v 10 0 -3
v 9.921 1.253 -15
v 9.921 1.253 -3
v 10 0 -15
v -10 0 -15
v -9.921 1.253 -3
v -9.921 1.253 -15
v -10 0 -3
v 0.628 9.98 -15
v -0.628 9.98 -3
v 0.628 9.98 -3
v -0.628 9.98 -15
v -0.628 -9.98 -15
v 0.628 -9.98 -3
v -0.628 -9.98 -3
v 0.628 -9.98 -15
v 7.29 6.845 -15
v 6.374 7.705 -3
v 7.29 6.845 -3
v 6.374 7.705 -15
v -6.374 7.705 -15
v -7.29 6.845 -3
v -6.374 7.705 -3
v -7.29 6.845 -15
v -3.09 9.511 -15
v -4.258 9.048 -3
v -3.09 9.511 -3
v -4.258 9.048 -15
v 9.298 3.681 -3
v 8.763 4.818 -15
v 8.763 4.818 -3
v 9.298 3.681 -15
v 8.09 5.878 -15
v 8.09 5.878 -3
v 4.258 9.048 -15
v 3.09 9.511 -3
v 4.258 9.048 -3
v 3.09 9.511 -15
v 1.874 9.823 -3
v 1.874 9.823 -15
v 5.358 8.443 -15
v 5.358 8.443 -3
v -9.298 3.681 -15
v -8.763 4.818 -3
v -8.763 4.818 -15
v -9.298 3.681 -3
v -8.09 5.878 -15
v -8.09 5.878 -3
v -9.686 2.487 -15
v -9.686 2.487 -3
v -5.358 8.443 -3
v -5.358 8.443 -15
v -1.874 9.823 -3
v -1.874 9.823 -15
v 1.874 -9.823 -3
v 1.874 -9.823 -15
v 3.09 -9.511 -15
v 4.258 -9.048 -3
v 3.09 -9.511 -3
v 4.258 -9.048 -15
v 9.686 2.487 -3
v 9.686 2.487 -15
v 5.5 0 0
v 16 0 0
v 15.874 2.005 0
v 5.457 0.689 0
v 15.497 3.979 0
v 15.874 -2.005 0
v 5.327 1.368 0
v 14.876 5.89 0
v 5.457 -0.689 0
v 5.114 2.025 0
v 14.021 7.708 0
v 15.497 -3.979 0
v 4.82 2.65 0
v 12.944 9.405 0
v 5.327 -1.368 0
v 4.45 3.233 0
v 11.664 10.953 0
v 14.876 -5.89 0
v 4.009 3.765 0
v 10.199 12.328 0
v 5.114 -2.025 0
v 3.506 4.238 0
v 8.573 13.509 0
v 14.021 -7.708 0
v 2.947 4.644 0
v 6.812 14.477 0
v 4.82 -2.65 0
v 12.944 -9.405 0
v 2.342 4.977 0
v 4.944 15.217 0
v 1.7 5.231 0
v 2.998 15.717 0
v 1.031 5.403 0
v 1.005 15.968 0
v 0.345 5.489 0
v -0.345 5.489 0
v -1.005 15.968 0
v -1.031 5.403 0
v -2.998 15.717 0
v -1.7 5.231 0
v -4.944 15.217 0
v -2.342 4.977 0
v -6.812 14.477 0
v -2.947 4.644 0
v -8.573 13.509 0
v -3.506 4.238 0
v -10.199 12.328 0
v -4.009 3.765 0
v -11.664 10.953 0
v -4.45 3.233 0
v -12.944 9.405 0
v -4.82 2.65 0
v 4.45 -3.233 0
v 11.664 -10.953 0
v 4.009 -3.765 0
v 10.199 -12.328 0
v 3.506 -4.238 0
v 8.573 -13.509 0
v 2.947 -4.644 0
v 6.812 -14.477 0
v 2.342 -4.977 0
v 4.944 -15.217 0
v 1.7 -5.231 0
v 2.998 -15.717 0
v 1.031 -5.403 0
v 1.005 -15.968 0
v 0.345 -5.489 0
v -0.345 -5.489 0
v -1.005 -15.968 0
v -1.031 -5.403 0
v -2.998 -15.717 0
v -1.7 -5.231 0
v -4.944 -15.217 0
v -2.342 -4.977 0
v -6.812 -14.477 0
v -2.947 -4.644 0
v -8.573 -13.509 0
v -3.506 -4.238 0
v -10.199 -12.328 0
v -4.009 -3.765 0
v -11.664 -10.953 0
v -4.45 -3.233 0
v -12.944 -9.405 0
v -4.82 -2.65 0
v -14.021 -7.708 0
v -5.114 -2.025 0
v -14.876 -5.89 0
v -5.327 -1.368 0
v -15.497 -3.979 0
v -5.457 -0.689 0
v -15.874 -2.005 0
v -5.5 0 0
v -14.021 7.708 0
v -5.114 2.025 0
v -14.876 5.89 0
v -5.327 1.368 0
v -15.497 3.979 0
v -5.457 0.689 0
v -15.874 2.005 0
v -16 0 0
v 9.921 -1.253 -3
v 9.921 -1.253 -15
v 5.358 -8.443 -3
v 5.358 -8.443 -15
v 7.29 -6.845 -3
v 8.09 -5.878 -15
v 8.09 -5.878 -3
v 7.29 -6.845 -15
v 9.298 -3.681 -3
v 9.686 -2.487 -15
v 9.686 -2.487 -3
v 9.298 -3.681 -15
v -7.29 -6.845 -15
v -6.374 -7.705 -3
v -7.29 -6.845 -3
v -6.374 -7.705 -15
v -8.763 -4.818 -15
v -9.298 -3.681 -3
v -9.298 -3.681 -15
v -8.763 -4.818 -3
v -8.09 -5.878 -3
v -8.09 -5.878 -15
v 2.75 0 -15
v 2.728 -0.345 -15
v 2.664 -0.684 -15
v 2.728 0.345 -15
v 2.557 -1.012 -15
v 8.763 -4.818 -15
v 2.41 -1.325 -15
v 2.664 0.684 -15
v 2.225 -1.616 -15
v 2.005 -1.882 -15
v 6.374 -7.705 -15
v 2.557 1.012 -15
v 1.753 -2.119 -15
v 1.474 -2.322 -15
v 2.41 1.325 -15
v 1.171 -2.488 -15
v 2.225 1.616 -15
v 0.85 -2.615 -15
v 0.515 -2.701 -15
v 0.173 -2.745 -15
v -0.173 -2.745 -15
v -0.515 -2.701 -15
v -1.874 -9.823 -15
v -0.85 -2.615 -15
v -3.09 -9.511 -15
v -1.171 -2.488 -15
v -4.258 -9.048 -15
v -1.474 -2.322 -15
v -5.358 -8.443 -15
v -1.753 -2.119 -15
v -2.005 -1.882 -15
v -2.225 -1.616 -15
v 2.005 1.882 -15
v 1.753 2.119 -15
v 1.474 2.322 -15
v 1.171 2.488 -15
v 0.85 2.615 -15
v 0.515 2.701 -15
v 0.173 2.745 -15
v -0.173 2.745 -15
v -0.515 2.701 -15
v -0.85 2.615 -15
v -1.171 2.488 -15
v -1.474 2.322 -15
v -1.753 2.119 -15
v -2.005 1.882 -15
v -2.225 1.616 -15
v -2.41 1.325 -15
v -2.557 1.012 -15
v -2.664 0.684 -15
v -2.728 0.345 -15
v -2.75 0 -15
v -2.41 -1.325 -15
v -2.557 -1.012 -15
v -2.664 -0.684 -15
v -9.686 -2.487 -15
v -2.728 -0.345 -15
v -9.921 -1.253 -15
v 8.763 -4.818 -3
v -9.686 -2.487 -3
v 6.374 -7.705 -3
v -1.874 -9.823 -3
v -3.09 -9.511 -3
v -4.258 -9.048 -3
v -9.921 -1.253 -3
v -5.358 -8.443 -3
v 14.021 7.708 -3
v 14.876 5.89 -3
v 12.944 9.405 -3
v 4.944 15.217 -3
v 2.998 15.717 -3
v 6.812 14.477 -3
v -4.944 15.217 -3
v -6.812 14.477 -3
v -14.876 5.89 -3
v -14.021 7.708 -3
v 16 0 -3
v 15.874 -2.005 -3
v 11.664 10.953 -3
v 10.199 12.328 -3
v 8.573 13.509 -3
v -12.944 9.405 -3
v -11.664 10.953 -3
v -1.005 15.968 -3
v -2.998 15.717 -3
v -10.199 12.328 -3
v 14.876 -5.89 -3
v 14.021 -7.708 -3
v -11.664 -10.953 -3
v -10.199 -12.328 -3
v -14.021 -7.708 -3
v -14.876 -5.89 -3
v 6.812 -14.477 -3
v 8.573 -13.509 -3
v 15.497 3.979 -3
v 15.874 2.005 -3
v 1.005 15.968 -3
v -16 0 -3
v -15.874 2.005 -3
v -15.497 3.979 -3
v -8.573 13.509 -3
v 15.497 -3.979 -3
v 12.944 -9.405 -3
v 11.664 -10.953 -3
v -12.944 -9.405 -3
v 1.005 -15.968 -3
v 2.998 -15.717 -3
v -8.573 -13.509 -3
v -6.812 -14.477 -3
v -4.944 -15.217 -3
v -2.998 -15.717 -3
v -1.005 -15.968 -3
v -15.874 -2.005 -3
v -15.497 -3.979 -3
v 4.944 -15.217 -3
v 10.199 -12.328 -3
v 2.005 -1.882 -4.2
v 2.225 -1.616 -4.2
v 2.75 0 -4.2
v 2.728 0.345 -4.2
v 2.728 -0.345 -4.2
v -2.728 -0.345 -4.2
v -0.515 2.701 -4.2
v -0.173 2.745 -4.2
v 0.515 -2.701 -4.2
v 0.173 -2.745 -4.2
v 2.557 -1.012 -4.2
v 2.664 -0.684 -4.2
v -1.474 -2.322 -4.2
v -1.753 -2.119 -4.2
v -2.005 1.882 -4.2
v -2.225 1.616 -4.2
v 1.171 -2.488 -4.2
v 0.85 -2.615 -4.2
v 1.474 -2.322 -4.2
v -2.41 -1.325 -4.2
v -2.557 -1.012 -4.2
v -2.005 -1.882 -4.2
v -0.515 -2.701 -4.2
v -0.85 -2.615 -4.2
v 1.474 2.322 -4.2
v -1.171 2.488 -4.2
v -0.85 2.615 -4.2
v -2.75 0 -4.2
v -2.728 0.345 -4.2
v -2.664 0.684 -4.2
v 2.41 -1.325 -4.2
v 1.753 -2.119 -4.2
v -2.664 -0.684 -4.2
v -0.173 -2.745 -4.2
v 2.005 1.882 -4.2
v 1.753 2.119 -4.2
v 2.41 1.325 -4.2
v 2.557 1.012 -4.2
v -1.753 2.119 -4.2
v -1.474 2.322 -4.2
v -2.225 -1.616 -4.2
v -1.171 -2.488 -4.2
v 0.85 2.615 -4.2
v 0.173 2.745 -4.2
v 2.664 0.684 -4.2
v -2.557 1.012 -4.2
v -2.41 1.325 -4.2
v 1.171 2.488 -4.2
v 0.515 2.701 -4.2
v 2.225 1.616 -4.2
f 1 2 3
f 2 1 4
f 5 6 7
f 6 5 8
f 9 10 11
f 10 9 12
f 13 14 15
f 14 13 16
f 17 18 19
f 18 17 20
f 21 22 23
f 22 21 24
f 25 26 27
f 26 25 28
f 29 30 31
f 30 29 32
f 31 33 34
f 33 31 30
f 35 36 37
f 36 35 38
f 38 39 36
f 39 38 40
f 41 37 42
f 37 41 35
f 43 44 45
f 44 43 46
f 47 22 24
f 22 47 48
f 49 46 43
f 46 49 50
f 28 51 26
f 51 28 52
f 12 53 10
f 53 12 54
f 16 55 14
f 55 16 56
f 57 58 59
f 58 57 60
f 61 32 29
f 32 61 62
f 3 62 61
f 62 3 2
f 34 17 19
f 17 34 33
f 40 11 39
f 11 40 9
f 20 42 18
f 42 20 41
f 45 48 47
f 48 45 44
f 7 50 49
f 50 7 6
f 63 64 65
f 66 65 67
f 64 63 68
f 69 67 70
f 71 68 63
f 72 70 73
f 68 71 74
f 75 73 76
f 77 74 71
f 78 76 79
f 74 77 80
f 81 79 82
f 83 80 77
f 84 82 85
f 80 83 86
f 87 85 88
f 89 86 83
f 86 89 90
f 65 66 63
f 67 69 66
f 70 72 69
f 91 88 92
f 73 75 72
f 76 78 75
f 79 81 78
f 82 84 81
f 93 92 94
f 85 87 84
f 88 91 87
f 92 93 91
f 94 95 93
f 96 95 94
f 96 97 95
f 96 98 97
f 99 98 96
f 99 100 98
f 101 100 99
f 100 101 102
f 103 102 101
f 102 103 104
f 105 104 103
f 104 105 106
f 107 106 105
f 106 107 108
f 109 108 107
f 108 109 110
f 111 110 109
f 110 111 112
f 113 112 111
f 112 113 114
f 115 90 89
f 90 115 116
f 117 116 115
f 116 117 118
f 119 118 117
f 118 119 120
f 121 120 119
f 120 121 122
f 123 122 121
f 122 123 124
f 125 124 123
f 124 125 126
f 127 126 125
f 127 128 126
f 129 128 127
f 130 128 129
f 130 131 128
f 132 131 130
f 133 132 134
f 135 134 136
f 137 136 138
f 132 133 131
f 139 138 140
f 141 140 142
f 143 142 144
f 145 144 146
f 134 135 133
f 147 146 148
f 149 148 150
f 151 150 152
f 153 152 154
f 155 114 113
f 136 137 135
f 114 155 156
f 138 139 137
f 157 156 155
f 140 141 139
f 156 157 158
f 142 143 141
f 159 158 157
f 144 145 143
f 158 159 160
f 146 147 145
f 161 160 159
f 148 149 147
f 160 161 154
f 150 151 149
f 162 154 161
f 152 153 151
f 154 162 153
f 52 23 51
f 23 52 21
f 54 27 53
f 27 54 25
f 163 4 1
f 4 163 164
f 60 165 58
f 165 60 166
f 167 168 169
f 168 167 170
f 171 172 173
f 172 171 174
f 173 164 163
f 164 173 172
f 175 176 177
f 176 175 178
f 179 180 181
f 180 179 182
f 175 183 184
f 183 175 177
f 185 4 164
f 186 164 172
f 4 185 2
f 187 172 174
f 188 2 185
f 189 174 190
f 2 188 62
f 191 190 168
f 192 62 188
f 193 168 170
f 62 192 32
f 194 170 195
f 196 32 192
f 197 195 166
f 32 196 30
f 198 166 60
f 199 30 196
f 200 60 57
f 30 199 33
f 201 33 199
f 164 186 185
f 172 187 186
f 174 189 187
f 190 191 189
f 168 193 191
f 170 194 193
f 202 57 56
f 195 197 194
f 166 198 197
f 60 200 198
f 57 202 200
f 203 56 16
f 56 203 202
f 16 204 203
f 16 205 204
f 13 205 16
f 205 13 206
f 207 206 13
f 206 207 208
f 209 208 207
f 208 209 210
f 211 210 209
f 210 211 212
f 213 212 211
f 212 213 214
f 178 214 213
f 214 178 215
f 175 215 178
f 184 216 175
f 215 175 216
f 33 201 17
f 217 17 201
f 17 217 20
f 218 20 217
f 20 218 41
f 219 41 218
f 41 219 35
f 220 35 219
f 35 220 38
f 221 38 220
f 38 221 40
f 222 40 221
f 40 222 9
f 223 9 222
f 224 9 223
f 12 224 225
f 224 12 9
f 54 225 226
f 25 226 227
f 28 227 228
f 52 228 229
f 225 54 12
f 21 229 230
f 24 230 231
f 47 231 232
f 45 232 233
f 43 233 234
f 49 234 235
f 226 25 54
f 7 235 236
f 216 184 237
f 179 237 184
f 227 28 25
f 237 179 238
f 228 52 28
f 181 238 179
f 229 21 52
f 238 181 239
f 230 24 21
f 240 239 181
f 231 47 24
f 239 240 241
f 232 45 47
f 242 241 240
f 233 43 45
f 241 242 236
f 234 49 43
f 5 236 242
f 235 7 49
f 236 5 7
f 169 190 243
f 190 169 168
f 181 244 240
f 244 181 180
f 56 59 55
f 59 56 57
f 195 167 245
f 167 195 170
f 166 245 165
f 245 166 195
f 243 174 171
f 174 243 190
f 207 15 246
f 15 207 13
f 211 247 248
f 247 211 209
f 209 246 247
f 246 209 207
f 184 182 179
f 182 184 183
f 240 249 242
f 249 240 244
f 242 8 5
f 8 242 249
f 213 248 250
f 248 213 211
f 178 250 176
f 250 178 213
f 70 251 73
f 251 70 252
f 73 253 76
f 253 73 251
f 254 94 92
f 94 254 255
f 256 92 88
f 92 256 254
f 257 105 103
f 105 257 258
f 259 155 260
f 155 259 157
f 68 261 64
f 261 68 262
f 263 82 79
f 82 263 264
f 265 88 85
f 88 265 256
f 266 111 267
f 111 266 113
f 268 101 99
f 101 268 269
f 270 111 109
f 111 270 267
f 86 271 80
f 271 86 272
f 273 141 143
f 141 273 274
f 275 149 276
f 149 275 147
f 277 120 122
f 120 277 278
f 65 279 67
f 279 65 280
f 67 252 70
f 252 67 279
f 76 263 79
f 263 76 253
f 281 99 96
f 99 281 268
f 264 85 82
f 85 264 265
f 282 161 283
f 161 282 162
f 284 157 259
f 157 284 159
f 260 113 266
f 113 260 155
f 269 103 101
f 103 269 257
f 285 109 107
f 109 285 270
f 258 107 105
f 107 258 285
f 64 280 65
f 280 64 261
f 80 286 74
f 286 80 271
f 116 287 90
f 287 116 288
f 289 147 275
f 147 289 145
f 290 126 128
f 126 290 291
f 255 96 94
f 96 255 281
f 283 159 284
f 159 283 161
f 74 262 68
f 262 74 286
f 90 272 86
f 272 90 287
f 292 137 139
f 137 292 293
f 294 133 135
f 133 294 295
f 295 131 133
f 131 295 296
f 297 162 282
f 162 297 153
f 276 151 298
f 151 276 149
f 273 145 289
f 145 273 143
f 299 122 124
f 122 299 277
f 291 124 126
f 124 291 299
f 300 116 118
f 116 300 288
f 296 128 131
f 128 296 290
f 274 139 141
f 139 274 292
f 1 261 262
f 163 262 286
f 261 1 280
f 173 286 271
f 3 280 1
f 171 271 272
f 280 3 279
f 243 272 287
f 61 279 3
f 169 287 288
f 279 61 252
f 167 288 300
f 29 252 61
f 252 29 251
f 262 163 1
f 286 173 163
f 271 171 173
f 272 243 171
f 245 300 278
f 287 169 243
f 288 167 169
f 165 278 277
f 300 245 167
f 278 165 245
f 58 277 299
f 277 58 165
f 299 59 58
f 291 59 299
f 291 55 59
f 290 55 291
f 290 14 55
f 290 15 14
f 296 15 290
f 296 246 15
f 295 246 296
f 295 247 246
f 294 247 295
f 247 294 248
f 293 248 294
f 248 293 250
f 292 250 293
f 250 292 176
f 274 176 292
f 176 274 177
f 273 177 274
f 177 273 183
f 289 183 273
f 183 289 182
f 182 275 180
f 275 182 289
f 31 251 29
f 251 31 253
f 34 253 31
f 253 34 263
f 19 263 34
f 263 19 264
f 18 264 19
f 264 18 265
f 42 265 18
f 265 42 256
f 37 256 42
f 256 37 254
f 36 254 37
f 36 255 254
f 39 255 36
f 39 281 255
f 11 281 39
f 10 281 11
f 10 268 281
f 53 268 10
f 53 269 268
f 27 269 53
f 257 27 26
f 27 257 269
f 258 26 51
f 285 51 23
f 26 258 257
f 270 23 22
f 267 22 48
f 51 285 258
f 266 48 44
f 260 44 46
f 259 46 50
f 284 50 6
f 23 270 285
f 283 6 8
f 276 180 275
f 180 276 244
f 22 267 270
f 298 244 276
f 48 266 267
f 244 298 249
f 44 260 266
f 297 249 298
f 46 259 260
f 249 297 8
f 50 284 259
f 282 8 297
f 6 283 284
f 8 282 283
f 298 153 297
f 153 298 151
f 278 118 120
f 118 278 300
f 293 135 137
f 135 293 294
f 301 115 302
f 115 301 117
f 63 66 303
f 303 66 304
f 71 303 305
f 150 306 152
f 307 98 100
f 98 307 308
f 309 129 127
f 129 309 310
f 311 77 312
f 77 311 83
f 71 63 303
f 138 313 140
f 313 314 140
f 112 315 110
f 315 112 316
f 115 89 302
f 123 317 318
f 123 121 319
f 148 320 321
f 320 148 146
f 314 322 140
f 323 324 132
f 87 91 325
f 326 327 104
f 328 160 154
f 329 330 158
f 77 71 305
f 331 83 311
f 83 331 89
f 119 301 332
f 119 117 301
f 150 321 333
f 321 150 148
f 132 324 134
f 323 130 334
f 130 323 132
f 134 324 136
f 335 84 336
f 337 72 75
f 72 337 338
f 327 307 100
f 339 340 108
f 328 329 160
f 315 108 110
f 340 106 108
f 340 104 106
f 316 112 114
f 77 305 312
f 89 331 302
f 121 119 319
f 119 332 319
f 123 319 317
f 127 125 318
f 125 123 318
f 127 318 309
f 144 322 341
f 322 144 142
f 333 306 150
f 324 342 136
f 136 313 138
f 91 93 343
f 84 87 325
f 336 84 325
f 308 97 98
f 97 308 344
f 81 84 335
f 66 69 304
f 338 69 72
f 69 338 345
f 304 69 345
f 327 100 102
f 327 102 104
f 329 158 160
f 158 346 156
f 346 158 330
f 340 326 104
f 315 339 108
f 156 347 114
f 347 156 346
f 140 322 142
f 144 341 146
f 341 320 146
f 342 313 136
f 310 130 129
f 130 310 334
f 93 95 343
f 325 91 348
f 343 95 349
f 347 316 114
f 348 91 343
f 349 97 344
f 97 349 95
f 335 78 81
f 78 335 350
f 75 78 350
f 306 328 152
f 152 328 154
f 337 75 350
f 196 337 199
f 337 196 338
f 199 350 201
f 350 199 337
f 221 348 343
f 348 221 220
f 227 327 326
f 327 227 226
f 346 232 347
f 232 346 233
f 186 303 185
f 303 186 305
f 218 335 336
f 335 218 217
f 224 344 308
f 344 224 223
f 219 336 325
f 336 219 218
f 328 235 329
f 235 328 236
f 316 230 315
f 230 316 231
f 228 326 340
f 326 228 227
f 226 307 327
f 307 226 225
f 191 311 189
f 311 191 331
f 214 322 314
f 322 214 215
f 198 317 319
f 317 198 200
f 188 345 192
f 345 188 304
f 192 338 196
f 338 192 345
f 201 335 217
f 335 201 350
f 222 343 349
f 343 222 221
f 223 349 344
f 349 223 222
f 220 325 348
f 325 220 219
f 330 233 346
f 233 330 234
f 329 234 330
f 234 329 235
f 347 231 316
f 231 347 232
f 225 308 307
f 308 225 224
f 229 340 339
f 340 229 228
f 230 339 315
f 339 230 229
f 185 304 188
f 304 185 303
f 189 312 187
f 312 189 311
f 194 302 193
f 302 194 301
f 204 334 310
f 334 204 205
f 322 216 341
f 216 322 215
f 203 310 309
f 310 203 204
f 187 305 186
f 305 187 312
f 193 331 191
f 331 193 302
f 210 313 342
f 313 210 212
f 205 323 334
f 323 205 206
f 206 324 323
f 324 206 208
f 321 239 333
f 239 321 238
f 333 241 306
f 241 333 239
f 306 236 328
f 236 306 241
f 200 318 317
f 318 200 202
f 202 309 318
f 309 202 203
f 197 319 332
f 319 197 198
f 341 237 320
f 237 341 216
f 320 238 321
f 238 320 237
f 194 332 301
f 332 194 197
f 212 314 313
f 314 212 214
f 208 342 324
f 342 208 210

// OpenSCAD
$fn = 50;


difference() {
	union() {
		translate(v = [0, 0, -15.0000000000]) {
			cylinder(h = 15, r = 10.0000000000);
		}
		translate(v = [0, 0, -3.0000000000]) {
			cylinder(h = 3, r = 16.0000000000);
		}
	}
	union() {
		translate(v = [0, 0, 0]) {
			rotate(a = [0, 0, 0]) {
				difference() {
					union() {
						#translate(v = [0, 0, -15.0000000000]) {
							cylinder(h = 15, r = 2.2500000000);
						}
						#translate(v = [0, 0, -4.2000000000]) {
							cylinder(h = 4.2000000000, r1 = 2.7500000000, r2 = 5.5000000000);
						}
						#translate(v = [0, 0, -15.0000000000]) {
							cylinder(h = 15, r = 2.7500000000);
						}
						#translate(v = [0, 0, -15.0000000000]) {
							cylinder(h = 15, r = 2.2500000000);
						}
					}
					union();
				}
			}
		}
	}
}
